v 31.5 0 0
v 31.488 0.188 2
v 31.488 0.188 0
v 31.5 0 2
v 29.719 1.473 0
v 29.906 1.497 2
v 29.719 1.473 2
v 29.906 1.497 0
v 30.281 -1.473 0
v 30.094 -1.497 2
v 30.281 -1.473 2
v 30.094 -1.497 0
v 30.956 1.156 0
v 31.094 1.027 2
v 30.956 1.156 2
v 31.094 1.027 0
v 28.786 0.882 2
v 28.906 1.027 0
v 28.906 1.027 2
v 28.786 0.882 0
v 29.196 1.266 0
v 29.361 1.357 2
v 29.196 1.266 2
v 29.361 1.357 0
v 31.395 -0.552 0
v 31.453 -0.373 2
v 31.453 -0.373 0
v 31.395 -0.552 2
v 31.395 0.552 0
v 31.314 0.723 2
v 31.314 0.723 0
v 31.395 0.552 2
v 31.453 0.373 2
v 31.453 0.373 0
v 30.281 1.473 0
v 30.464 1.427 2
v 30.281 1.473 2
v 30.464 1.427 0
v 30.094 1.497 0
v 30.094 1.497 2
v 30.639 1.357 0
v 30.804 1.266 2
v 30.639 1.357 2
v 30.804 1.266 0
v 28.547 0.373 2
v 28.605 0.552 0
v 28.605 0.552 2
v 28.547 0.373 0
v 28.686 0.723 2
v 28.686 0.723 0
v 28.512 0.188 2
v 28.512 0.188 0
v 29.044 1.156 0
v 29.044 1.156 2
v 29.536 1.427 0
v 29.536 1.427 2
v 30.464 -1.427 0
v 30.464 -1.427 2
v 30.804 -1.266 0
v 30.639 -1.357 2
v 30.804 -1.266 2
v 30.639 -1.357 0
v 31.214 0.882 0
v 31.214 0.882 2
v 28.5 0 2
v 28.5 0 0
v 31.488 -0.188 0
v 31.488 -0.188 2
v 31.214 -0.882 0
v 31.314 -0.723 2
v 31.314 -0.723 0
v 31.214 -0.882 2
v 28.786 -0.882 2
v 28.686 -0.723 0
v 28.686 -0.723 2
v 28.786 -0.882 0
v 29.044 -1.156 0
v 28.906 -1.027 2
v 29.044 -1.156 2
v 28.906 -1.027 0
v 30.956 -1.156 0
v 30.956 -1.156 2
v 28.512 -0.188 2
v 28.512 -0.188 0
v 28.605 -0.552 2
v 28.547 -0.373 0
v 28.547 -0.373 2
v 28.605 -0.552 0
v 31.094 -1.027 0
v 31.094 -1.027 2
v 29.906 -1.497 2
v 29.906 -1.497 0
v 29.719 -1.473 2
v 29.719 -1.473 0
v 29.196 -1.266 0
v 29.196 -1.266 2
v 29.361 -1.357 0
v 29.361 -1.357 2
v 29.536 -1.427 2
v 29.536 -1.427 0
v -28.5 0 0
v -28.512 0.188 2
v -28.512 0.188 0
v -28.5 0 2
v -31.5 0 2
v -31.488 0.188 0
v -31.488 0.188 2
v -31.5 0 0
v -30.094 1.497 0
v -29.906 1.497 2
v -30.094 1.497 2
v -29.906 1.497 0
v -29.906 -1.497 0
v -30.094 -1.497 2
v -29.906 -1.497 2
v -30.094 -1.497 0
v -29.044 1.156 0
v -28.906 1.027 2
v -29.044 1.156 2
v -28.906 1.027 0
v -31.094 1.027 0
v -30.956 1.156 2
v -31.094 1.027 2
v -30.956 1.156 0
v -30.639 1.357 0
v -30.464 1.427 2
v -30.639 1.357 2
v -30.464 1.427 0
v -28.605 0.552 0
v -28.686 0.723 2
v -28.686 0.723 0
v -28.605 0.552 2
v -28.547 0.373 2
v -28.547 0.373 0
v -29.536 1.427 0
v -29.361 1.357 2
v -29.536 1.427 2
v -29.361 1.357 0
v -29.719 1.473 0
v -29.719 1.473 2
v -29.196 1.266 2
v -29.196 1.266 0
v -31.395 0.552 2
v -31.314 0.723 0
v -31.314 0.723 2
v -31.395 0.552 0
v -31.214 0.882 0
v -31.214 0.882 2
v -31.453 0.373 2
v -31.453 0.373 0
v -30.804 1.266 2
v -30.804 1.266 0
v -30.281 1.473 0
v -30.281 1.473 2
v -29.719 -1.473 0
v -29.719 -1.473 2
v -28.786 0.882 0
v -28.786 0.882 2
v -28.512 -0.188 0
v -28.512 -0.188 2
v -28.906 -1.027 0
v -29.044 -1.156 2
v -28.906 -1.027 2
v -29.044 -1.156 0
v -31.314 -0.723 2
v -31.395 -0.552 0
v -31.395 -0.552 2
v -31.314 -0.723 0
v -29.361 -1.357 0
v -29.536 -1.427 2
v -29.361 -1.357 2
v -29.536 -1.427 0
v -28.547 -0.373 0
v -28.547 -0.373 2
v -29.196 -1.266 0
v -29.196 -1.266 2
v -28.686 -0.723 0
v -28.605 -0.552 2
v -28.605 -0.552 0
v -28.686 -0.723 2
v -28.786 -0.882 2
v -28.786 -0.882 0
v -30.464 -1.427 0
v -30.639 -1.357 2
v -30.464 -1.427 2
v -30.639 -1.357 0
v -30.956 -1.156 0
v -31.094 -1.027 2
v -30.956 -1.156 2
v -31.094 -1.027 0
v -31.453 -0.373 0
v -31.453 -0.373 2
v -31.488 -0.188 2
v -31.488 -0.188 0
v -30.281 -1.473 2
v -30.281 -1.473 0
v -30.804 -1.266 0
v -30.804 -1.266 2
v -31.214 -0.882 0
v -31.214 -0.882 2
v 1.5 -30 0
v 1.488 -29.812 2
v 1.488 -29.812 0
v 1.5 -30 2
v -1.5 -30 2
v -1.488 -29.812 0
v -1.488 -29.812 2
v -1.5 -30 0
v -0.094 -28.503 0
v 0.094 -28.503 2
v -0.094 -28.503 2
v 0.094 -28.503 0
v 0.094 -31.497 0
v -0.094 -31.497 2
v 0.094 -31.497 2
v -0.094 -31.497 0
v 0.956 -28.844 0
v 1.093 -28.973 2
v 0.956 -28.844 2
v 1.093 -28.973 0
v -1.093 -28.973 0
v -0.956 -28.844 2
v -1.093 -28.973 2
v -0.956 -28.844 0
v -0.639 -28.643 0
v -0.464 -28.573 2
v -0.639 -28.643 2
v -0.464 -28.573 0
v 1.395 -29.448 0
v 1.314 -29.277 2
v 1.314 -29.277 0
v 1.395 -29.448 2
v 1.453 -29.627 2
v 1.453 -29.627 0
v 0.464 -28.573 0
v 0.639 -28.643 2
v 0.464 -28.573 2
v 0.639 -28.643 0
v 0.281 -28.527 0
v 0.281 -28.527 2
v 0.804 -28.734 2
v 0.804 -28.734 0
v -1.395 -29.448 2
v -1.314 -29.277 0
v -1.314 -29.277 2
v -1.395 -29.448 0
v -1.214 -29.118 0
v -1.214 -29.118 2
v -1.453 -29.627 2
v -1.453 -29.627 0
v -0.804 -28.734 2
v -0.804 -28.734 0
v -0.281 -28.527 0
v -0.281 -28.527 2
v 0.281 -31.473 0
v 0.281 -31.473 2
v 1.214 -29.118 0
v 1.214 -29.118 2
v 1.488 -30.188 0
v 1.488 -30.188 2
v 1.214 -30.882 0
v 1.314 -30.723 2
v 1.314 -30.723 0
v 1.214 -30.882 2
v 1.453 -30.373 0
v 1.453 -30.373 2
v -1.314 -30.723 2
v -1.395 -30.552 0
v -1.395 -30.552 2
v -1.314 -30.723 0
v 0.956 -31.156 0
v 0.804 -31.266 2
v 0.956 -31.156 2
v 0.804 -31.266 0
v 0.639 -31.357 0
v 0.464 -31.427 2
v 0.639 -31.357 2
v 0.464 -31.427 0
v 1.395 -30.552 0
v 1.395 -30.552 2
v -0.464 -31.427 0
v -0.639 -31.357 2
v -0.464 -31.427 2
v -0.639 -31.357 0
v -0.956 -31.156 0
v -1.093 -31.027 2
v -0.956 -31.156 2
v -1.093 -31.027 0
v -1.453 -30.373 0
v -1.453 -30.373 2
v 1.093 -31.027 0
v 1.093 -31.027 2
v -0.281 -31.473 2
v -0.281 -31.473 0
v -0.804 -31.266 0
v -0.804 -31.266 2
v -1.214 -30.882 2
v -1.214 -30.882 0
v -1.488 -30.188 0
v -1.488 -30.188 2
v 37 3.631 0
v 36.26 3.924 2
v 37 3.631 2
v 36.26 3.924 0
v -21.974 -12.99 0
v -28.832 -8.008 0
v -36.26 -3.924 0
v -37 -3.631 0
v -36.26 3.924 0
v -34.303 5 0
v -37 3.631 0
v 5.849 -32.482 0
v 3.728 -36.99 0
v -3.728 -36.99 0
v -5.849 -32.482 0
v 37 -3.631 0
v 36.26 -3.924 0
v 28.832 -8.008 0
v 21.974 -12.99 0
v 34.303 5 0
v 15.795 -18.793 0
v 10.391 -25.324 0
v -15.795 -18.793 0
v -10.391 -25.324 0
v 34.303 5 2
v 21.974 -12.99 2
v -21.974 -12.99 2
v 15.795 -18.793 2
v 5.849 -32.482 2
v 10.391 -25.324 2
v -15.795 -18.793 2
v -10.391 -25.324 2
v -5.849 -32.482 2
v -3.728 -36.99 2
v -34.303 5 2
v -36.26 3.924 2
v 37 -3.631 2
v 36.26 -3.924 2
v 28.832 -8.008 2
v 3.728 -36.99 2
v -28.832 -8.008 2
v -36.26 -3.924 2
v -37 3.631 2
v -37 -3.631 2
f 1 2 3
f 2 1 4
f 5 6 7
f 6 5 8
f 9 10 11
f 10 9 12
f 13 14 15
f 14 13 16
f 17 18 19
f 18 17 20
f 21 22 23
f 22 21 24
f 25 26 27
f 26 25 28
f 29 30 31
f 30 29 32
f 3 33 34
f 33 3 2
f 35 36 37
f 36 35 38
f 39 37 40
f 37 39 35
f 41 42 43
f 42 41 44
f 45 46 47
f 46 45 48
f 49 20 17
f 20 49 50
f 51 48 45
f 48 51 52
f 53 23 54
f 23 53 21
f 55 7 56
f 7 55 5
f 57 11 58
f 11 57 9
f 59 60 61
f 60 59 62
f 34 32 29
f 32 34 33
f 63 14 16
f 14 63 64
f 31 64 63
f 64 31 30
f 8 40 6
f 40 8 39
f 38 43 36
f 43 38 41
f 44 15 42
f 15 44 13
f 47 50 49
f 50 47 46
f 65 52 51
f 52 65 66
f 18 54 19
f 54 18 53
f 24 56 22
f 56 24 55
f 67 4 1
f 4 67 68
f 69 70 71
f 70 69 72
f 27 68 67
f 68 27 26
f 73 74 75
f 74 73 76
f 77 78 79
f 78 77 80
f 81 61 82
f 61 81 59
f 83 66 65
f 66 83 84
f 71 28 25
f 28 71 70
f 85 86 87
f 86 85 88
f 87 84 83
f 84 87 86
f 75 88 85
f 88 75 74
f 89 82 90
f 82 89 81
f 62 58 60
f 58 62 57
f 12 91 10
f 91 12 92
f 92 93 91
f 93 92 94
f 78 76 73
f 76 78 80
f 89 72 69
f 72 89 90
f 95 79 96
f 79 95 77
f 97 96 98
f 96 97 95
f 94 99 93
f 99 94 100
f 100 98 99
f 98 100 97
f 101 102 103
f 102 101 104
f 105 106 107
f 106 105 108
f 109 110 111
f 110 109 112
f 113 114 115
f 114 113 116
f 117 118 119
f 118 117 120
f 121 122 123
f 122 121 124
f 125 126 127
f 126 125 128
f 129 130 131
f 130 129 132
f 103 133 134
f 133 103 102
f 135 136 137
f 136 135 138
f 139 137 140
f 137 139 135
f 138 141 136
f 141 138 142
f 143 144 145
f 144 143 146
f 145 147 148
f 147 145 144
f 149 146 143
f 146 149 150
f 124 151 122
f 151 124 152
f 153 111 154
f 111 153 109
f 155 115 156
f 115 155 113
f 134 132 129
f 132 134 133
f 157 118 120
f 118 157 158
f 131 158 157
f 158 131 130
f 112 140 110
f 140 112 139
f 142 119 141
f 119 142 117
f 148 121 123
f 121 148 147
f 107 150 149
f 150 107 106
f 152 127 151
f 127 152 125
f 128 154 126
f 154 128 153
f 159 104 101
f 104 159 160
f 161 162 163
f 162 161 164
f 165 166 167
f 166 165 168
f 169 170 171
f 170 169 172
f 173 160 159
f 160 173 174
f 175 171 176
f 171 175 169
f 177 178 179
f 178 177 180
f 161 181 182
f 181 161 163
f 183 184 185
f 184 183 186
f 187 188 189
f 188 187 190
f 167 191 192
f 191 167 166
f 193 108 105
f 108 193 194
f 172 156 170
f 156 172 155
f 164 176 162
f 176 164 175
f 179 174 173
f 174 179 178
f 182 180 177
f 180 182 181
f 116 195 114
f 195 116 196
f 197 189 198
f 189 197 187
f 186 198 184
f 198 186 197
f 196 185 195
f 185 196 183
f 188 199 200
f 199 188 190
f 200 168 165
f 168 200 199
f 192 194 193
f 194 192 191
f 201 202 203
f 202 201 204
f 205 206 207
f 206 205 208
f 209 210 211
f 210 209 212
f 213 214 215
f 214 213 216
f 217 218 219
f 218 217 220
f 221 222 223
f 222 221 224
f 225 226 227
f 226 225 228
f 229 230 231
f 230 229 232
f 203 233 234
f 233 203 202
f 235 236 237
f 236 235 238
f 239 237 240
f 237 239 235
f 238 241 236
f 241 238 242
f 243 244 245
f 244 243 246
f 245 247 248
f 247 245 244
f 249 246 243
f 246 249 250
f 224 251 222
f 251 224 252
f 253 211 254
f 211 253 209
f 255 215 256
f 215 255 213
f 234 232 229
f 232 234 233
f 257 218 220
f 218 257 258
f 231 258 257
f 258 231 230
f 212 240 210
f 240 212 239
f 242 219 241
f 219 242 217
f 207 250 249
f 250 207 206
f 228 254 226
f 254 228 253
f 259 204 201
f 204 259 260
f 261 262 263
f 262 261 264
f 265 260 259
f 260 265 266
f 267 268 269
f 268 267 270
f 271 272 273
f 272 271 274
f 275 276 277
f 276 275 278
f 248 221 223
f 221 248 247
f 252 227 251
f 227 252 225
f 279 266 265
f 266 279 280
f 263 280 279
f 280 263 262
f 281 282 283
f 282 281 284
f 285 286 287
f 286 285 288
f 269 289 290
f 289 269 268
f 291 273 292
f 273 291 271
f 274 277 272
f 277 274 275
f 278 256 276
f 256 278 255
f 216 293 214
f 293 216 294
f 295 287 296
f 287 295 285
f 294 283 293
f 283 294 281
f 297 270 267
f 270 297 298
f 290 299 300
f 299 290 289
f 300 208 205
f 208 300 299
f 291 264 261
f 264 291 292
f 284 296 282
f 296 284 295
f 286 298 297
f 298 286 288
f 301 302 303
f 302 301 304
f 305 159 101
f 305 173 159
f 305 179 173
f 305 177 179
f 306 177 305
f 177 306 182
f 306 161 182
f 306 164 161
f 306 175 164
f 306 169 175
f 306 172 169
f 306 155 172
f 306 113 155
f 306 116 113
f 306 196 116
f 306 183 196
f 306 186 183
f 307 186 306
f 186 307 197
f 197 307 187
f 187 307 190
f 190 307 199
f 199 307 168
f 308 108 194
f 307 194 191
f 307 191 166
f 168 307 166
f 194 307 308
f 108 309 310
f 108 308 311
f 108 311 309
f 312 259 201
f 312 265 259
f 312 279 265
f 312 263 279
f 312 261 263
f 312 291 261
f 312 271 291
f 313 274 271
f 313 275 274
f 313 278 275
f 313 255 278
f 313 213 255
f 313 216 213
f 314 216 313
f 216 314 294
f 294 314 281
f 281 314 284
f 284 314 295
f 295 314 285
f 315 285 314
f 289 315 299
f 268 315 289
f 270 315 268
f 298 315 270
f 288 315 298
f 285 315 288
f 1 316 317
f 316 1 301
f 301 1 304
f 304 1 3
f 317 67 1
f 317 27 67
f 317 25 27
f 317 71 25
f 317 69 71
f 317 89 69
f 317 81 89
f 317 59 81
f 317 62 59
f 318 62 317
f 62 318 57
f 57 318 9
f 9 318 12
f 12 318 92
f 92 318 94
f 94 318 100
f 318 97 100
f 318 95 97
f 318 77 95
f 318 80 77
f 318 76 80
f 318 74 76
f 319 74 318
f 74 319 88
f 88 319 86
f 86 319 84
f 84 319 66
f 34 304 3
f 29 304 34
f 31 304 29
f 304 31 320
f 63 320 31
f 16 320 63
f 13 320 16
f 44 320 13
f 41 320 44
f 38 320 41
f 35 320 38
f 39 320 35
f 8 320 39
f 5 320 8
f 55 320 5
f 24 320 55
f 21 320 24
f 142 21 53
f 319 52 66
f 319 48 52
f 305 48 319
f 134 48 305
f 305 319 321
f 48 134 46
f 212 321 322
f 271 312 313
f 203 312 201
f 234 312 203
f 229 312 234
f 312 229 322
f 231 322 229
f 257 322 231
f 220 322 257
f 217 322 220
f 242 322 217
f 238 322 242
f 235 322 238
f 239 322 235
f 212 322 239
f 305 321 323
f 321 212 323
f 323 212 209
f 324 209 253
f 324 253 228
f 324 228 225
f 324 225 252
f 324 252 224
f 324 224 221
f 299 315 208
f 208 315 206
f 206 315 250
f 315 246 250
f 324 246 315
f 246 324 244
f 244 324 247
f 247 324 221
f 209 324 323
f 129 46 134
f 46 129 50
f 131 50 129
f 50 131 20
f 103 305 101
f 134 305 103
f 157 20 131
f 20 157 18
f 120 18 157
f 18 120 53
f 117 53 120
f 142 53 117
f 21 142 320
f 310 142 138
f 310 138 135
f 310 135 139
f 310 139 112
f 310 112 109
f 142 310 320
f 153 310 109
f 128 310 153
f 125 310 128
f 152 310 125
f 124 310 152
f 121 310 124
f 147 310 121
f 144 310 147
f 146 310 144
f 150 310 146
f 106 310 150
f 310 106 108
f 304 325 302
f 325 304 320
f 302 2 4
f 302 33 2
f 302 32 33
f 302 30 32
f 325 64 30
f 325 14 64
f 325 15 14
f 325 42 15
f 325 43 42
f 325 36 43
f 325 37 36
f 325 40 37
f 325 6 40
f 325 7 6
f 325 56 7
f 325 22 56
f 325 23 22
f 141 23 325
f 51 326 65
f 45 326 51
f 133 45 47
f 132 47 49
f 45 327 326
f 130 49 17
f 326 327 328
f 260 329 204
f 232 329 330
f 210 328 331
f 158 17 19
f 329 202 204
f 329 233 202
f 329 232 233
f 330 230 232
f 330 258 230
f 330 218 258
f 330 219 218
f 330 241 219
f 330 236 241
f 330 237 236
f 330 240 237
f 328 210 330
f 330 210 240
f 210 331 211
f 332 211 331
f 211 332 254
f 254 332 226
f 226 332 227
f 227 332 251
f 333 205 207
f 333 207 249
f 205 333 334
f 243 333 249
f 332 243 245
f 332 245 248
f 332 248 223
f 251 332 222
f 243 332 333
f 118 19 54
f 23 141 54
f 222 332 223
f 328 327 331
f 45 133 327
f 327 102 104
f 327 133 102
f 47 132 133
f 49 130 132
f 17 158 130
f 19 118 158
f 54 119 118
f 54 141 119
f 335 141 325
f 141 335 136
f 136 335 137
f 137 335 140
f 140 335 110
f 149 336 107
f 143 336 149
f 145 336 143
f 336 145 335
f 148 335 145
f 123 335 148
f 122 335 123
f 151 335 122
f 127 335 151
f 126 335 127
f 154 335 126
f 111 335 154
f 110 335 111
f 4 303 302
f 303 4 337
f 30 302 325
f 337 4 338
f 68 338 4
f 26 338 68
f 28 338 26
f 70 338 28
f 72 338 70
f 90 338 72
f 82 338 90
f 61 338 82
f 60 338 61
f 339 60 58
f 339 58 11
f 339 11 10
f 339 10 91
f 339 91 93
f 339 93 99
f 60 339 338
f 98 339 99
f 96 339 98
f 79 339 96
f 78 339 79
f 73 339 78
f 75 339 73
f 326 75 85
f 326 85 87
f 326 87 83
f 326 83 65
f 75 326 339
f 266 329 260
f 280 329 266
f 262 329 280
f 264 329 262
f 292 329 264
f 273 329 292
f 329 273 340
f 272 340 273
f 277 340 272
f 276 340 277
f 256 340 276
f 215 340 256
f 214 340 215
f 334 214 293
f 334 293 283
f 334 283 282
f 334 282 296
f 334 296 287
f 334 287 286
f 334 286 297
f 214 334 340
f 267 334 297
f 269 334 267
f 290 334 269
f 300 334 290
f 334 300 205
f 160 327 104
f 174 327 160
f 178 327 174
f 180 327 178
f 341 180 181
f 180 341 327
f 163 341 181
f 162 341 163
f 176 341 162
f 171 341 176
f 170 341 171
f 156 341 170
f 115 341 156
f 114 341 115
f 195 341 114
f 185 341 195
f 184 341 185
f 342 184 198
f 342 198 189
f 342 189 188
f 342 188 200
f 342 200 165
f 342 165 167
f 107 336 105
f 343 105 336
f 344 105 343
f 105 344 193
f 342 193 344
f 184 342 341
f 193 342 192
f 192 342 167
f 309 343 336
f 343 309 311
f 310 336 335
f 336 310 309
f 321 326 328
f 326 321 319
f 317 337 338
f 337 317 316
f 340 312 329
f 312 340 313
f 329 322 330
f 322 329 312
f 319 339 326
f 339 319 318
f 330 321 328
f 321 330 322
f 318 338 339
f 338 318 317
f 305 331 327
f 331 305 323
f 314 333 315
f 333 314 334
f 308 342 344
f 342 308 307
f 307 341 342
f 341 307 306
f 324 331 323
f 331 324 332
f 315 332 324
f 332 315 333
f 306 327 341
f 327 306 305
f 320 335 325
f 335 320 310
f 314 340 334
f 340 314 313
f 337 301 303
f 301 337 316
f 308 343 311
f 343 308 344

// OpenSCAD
$fn = 50;


difference() {
	union() {
		hull() {
			translate(v = [-32.0000000000, 32.0000000000, 0]) {
				cylinder(h = 2, r = 5);
			}
			translate(v = [32.0000000000, 32.0000000000, 0]) {
				cylinder(h = 2, r = 5);
			}
			translate(v = [-32.0000000000, -32.0000000000, 0]) {
				cylinder(h = 2, r = 5);
			}
			translate(v = [32.0000000000, -32.0000000000, 0]) {
				cylinder(h = 2, r = 5);
			}
		}
	}
	union() {
		translate(v = [30, 0, -100.0000000000]) {
			cylinder(h = 200, r = 1.5000000000);
		}
		translate(v = [-30, 0, -100.0000000000]) {
			cylinder(h = 200, r = 1.5000000000);
		}
		translate(v = [0, -30, -100.0000000000]) {
			cylinder(h = 200, r = 1.5000000000);
		}
		translate(v = [0, 30, -100.0000000000]) {
			cylinder(h = 200, r = 1.5000000000);
		}
		translate(v = [65, 65, 0.0000000000]) {
			cylinder(h = 2, r = 67.5000000000);
		}
		translate(v = [-65, 65, 0.0000000000]) {
			cylinder(h = 2, r = 67.5000000000);
		}
		translate(v = [65, -65, 0.0000000000]) {
			cylinder(h = 2, r = 67.5000000000);
		}
		translate(v = [-65, -65, 0.0000000000]) {
			cylinder(h = 2, r = 67.5000000000);
		}
		translate(v = [-250, 5, -250]) {
			cube(size = [500, 500, 500]);
		}
		translate(v = [-250, 5, -250]) {
			cube(size = [500, 500, 500]);
		}
		translate(v = [-250, 5, -250]) {
			cube(size = [500, 500, 500]);
		}
	}
}
